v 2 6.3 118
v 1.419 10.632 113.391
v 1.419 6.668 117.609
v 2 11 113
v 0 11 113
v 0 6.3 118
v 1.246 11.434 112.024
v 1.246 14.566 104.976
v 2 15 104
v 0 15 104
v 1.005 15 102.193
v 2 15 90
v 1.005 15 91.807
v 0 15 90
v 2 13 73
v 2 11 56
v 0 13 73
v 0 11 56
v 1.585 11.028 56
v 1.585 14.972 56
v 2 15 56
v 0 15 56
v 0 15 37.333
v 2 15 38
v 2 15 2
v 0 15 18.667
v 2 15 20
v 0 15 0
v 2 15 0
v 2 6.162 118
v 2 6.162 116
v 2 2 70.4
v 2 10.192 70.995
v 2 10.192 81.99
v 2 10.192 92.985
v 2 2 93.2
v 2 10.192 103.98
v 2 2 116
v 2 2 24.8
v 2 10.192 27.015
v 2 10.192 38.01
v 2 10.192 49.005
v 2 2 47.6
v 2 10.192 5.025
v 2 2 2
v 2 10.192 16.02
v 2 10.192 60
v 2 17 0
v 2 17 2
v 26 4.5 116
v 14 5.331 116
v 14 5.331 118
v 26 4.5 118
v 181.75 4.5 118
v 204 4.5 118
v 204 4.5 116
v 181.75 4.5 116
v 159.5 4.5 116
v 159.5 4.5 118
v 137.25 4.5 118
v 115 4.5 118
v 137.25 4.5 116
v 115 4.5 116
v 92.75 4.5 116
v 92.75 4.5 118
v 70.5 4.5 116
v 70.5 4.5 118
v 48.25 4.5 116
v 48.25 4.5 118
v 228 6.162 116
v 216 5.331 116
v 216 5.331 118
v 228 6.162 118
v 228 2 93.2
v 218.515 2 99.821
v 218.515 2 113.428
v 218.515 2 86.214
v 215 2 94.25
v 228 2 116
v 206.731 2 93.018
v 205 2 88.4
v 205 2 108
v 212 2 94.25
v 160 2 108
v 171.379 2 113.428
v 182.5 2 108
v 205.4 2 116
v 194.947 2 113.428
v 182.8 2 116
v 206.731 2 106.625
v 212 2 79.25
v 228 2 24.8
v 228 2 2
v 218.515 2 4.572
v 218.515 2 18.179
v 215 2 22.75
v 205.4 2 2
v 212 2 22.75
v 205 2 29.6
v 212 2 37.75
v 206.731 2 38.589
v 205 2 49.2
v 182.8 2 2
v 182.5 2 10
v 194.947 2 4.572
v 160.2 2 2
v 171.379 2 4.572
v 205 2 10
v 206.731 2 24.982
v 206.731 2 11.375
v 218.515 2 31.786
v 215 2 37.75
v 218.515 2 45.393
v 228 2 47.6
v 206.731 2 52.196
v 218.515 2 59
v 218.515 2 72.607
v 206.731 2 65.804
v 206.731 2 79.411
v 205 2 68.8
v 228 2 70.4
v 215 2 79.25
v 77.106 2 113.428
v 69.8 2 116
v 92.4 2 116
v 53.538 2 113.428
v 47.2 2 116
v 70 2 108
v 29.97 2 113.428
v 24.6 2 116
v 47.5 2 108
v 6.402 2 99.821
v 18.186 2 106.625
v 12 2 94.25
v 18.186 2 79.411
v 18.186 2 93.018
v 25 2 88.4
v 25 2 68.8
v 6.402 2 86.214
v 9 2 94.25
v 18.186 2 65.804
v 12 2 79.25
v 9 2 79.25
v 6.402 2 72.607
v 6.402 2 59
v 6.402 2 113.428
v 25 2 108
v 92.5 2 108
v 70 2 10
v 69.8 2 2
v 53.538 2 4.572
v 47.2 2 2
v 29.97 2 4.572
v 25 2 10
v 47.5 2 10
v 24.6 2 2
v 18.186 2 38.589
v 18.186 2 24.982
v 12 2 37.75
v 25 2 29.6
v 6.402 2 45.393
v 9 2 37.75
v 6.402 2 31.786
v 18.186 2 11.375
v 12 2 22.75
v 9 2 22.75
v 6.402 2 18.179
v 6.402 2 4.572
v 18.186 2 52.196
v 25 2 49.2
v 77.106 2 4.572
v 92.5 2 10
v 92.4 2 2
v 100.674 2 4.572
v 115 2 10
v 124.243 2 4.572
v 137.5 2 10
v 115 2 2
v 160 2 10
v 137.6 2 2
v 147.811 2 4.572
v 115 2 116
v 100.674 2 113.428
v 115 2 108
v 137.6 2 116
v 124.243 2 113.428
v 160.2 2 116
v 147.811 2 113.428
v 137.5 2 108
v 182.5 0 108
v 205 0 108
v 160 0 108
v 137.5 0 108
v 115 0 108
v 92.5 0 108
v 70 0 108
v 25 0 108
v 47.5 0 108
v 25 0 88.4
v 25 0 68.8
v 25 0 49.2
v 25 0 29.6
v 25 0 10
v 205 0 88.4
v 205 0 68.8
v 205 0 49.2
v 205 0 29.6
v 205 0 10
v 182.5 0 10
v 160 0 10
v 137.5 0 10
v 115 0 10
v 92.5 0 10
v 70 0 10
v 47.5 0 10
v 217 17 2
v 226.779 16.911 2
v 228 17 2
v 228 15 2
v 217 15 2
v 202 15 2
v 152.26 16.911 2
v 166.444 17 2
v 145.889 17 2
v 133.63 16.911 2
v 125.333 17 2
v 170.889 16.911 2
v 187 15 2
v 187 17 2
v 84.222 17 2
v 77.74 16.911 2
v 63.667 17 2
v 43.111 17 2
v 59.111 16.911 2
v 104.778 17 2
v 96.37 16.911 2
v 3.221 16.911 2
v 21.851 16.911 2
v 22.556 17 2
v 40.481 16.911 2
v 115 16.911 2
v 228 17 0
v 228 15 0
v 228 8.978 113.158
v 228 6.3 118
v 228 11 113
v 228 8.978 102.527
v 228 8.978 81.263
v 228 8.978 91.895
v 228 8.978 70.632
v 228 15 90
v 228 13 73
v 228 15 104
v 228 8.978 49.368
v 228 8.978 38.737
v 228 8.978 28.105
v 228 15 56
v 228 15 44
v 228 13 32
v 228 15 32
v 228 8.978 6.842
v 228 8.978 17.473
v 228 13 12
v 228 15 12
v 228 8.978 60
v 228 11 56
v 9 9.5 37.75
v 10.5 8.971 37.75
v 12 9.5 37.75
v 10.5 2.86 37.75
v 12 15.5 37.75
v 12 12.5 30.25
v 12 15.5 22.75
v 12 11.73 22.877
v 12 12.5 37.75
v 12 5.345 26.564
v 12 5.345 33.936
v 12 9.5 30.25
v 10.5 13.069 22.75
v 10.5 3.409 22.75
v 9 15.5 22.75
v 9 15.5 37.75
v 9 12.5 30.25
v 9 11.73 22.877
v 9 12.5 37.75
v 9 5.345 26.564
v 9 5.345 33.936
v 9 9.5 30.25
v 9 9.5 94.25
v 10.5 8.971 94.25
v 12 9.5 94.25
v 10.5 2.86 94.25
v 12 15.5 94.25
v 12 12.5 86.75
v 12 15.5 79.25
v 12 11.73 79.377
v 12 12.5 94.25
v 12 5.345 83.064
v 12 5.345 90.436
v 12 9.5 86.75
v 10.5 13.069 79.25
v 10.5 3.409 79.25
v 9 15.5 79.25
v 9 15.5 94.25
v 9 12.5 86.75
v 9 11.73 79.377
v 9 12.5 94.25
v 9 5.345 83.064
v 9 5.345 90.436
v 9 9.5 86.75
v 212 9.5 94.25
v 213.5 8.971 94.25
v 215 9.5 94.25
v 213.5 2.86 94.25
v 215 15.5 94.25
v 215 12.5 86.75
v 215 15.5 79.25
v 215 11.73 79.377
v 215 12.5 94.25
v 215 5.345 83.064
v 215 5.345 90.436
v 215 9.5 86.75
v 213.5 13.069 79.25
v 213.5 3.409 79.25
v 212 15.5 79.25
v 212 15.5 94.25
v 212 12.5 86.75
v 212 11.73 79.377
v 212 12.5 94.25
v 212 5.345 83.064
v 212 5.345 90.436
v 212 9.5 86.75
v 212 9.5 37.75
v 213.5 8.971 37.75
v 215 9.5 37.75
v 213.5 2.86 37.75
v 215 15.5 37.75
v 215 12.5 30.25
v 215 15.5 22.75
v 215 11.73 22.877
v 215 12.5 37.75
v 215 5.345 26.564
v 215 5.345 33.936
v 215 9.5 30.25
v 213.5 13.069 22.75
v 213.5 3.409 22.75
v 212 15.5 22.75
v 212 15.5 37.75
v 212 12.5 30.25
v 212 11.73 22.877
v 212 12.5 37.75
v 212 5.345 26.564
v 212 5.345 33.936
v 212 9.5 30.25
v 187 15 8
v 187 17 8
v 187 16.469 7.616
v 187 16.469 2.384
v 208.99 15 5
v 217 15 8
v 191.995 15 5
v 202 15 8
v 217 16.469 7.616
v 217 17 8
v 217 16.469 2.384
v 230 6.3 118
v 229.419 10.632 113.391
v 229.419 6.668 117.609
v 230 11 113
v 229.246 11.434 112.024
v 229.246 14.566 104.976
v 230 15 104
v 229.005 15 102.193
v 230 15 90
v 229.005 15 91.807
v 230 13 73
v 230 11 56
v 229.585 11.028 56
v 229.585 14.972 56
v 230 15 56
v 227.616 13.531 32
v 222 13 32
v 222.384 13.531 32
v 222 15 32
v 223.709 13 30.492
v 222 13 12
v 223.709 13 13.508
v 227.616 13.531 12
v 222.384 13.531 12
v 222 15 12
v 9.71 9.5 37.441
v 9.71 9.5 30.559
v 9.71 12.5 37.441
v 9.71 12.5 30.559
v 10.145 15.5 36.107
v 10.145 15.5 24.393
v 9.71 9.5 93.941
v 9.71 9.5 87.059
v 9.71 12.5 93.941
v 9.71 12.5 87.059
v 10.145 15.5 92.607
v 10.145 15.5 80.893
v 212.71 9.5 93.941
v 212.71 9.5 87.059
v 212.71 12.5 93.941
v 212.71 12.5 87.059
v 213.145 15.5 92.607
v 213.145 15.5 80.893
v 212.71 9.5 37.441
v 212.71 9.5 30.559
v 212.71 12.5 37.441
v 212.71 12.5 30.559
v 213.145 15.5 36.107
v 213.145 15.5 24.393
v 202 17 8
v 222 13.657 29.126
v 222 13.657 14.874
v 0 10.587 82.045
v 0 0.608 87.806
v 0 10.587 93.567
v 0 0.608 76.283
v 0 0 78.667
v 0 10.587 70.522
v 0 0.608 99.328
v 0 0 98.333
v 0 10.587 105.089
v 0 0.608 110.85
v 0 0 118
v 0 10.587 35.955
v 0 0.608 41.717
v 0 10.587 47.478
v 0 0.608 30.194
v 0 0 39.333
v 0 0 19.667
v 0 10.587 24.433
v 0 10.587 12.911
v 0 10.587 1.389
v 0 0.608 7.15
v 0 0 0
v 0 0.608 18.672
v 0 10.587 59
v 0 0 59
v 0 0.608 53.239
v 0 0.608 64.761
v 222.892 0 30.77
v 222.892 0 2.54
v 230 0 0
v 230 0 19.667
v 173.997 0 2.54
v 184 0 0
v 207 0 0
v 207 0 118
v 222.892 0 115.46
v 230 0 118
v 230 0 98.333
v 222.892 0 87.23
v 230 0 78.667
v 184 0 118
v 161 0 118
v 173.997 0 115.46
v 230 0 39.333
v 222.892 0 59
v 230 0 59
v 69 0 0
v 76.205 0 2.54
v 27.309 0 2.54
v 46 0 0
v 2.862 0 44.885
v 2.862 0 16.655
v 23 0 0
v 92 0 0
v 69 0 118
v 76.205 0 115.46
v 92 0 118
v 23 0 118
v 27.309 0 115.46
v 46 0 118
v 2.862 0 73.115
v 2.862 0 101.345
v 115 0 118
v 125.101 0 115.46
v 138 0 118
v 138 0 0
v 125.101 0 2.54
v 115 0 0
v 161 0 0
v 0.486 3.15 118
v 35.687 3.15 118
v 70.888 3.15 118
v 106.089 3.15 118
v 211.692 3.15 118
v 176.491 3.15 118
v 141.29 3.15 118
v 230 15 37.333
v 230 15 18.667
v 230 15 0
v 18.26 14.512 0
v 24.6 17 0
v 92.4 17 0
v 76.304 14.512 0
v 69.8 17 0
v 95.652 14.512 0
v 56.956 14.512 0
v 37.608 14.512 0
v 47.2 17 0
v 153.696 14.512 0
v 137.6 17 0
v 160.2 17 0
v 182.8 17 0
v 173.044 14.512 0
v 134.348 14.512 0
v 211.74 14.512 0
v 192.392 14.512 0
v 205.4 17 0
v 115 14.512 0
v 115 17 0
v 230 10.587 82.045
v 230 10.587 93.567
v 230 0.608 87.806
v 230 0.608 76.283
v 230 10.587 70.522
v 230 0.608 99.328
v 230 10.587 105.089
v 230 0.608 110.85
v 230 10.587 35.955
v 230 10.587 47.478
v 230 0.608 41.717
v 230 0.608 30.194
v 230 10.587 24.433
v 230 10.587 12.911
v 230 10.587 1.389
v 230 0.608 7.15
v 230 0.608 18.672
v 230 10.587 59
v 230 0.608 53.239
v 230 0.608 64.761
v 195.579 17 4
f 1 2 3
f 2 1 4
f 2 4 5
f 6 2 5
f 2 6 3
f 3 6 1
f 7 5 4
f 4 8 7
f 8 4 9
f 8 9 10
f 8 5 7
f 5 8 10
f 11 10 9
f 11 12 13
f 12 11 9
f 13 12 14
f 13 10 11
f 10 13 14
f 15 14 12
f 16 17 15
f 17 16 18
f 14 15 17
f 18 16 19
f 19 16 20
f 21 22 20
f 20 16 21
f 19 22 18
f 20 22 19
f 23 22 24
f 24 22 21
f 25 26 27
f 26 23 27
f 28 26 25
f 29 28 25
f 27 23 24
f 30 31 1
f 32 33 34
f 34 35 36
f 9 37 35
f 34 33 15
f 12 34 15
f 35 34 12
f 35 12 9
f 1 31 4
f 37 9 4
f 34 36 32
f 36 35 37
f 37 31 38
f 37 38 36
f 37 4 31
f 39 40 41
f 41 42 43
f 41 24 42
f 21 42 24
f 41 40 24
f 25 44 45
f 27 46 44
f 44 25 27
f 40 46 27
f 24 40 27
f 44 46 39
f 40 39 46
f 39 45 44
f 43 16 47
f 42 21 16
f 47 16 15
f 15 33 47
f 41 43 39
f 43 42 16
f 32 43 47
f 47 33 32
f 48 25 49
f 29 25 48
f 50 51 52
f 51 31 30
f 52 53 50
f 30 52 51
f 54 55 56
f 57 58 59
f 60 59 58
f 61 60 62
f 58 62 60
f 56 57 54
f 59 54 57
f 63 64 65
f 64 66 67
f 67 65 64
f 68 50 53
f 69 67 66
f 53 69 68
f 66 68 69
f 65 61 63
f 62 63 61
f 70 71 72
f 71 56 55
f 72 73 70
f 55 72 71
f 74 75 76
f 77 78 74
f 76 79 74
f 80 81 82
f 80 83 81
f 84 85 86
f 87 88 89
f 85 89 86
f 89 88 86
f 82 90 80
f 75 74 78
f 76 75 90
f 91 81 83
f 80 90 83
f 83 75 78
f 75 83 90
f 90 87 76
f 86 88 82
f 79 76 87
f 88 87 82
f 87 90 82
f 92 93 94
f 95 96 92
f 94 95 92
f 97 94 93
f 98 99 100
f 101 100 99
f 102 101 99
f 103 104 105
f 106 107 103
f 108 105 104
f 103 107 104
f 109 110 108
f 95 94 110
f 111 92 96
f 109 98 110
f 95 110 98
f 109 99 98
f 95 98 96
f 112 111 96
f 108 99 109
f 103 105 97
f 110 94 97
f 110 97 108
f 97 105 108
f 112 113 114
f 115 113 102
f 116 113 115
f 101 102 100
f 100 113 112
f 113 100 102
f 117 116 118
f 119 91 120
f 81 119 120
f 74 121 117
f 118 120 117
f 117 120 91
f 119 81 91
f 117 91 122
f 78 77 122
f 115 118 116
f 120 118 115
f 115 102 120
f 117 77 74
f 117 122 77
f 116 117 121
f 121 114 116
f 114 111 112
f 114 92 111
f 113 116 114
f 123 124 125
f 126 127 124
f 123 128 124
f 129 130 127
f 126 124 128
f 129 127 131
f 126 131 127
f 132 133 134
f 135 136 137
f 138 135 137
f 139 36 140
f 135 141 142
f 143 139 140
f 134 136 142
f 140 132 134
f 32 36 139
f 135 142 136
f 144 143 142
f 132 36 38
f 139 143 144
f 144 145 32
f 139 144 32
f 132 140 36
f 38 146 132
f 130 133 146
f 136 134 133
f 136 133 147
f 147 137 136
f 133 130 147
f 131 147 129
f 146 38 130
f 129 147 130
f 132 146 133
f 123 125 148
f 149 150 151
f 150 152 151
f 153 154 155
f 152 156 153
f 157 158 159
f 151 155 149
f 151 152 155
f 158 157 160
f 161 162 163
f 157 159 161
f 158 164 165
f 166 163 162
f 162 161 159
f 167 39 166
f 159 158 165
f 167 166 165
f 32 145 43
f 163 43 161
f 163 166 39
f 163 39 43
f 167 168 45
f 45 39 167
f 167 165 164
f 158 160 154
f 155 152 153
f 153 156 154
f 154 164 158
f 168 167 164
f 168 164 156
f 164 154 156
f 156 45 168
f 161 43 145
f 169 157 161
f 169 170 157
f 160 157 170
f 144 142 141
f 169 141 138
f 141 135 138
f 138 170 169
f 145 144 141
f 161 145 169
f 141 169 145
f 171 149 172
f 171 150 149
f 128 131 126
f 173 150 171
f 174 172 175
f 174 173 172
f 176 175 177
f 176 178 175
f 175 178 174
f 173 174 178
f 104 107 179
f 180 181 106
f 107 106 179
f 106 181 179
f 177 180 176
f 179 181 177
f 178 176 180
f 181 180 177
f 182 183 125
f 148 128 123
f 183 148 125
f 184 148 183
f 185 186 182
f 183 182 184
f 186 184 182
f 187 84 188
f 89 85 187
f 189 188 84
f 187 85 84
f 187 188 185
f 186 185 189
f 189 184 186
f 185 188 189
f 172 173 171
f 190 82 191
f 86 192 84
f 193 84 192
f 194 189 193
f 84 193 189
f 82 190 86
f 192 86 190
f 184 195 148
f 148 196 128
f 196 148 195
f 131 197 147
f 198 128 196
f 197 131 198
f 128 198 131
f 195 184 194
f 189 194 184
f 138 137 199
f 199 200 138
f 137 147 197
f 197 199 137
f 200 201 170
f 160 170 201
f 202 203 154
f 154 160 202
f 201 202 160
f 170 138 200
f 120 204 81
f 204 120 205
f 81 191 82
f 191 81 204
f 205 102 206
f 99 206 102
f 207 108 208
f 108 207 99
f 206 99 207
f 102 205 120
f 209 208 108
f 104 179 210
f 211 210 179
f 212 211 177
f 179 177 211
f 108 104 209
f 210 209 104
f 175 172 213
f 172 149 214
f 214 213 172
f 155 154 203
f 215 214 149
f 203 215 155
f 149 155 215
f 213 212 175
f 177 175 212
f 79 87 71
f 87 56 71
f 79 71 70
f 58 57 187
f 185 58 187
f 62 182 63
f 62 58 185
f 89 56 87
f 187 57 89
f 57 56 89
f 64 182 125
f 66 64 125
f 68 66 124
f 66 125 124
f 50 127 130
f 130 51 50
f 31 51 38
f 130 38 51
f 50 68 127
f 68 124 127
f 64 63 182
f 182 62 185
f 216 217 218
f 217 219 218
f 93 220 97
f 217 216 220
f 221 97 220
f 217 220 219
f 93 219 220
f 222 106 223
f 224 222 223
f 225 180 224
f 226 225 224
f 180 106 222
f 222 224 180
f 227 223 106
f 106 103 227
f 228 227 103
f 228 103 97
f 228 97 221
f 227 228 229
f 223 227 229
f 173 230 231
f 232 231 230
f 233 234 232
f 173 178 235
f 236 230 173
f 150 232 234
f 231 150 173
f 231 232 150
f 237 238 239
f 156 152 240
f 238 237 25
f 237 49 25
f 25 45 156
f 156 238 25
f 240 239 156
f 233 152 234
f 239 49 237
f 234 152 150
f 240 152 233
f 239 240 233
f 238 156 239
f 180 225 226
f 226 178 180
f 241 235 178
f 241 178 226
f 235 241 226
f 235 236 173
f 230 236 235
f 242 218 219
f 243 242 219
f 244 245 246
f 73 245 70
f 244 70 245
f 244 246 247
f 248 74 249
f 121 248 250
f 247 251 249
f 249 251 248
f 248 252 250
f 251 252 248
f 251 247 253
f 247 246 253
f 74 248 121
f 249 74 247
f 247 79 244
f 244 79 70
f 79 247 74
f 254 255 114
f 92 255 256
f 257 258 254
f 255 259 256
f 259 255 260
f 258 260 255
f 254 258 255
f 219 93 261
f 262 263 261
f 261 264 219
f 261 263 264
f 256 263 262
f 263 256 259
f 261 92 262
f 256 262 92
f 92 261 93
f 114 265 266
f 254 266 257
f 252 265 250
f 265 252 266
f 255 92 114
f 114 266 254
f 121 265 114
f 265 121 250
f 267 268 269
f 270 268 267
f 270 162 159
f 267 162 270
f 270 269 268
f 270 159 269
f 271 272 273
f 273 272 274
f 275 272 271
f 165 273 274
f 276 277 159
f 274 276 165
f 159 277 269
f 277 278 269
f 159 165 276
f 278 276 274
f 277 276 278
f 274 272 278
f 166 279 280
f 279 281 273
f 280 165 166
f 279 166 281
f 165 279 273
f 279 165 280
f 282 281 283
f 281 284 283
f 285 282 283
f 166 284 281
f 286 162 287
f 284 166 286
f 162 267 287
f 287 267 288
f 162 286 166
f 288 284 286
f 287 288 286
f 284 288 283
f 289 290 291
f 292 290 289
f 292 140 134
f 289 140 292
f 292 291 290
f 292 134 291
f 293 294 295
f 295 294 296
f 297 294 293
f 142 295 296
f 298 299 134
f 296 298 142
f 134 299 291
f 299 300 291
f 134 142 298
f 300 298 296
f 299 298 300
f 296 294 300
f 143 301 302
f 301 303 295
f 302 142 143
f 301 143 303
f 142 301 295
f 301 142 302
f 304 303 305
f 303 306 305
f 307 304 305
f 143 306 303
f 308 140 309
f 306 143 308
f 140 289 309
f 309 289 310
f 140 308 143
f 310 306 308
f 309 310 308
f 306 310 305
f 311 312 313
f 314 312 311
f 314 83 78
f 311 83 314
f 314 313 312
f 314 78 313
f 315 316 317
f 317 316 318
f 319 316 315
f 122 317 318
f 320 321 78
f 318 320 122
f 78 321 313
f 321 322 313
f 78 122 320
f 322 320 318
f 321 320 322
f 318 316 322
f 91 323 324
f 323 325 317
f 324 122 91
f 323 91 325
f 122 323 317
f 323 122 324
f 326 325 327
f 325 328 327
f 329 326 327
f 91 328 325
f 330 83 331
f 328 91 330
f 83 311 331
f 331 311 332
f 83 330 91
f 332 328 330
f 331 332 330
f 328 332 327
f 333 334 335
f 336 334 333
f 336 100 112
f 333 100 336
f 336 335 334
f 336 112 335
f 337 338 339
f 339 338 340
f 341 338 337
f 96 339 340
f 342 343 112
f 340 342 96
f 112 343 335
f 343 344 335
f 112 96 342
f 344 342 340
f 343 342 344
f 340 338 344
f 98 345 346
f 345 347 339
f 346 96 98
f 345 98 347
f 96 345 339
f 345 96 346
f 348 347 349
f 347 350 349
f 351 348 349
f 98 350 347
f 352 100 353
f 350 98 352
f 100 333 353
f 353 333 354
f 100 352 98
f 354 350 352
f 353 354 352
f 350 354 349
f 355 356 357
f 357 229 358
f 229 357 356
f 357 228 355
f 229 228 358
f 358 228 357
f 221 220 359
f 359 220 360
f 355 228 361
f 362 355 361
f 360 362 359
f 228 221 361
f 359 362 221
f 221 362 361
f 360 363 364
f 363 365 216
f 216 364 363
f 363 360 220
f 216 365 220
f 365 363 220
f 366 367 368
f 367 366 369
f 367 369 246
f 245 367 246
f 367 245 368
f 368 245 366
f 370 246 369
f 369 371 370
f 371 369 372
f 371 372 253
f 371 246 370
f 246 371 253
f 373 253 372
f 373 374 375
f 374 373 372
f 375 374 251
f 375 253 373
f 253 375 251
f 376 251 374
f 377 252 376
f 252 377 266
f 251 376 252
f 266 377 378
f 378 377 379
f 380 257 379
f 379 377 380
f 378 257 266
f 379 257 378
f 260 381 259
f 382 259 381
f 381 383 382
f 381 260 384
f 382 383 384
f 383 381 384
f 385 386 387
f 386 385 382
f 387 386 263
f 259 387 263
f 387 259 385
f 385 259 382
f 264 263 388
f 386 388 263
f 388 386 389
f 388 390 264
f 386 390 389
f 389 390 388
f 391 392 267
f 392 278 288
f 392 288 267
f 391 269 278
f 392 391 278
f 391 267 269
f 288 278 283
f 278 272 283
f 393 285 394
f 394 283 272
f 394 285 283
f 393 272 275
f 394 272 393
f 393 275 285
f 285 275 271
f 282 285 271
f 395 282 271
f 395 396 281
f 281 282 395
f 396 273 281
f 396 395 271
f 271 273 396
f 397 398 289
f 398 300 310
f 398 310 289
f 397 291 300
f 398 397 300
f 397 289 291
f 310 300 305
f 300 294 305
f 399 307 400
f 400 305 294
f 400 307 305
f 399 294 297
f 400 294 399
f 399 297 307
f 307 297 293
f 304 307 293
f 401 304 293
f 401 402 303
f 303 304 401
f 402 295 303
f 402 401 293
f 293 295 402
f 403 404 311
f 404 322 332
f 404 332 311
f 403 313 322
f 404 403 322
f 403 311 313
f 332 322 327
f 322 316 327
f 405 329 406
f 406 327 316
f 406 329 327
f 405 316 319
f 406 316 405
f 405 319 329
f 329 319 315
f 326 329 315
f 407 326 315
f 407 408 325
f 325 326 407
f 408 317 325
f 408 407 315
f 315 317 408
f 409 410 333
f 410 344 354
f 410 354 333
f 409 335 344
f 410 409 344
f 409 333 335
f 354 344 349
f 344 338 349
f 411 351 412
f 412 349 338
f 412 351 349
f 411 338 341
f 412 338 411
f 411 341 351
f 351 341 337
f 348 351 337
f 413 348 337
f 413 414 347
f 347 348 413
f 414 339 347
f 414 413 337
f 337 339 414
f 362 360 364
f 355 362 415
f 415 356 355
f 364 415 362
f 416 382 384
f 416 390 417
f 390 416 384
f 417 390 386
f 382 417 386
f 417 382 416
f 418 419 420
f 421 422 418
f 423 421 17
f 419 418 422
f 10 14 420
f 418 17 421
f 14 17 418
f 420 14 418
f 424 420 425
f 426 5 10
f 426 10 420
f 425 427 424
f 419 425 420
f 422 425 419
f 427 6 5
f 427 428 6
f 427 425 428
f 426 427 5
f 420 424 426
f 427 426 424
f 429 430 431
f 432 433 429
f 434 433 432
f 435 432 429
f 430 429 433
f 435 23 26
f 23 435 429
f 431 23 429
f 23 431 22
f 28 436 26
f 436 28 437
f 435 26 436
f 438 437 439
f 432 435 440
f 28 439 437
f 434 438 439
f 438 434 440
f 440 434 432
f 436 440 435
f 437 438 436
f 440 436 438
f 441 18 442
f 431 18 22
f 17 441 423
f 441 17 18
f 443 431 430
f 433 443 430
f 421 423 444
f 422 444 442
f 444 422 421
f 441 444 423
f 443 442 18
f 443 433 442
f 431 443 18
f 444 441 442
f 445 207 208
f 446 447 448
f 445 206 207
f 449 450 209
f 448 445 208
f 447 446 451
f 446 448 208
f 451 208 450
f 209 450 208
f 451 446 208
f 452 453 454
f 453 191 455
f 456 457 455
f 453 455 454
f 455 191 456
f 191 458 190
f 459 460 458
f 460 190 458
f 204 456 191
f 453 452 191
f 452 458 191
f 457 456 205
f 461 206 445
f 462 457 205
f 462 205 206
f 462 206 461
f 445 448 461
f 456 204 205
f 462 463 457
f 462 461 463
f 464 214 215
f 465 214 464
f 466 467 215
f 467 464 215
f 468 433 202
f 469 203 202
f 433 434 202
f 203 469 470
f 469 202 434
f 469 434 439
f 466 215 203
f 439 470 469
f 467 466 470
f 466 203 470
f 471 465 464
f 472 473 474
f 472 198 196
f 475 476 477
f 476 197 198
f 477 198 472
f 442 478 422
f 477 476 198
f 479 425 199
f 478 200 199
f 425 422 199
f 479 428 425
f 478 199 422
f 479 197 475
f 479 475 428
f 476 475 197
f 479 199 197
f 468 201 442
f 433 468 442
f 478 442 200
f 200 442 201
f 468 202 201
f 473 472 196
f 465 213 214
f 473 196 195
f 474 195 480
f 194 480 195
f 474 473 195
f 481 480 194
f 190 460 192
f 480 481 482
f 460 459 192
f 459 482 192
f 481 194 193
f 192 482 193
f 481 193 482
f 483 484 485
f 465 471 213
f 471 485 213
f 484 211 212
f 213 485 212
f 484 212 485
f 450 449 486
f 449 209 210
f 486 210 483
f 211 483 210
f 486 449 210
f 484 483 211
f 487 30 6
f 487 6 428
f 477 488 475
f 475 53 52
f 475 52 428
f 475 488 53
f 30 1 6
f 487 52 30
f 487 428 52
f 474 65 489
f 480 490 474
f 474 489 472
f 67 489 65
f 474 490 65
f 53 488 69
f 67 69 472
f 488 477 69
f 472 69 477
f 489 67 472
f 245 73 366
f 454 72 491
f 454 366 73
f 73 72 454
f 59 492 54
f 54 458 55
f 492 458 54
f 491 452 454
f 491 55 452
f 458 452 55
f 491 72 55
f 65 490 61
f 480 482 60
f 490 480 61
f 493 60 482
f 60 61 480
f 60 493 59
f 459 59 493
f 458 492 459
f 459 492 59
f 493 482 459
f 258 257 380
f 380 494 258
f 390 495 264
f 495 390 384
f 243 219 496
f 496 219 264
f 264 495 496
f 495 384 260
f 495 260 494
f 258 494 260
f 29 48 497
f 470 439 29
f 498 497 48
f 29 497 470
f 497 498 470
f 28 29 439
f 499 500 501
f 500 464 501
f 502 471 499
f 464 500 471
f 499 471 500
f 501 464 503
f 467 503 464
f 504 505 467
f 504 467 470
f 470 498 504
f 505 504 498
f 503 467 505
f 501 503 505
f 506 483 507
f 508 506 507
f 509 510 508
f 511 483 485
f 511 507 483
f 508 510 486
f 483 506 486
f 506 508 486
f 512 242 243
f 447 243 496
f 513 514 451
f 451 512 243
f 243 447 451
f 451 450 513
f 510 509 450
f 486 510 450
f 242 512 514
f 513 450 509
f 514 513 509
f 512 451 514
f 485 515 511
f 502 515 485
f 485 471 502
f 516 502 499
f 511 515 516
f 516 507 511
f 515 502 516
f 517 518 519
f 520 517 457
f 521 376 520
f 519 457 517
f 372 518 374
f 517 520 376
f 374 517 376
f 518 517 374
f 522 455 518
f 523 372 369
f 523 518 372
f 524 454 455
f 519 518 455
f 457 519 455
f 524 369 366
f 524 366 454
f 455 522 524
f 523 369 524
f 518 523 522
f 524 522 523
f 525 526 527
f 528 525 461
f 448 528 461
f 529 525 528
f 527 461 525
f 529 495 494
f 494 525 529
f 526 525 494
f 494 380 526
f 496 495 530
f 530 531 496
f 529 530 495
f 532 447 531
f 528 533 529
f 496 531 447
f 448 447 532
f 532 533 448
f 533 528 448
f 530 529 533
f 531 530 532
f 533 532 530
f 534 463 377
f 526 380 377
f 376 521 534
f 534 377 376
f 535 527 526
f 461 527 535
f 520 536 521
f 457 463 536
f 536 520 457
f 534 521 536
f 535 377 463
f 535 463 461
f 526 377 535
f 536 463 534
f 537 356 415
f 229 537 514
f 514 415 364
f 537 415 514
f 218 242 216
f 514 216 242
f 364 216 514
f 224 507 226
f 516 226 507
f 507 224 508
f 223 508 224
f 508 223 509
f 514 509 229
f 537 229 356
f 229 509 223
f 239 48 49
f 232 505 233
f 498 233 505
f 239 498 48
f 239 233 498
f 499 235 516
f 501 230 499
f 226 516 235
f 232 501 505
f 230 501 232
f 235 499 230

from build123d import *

# Parameters (mm, degrees)
EXTRUDE_DEPTH    = 2
EXTRUDE001_DEPTH = 2
EXTRUDE002_DEPTH = 2
BOX009_W         = 226
BOX009_H         = 17
BOX009_DEPTH     = 2
BOX015_W         = 10
BOX015_H         = 3
BOX015_DEPTH     = 10
BOX010_W         = 3
BOX010_H         = 13.5
BOX010_DEPTH     = 15
BOX022_W         = 30
BOX022_H         = 2
BOX022_DEPTH     = 6
BOX023_W         = 6
BOX023_H         = 2
BOX023_DEPTH     = 20
BOX001_W         = 180
BOX001_H         = 34
BOX001_DEPTH     = 98
BOX_W            = 226
BOX_H            = 2
BOX_DEPTH        = 118


with BuildPart() as top_thin_beam:
    # Sketch (on Sketch) → Extrude (new body)
    with BuildSketch(Plane.XY):
        Polygon((0, 0), (0, 6.3), (26, 4.5), (204, 4.5), (230, 6.3), (230, 0), align=None)
    extrude(amount=EXTRUDE_DEPTH)


with BuildPart() as top_thin_beam_1:
    # Extrude placement: moved
    add(top_thin_beam.part.moved(Location((0, 0, 116))))


with BuildPart() as rightverticalcontour:
    # Sketch001 → Extrude001 (new body)
    with BuildSketch(Plane.YZ):
        Polygon((0, 0), (15, 0), (15, 56), (11, 56), (15, 90), (15, 104), (11, 113), (6.3, 118), (0, 118), align=None)
    extrude(amount=EXTRUDE001_DEPTH)


with BuildPart() as rightverticalcontour_1:
    # Extrude001 placement: moved
    add(rightverticalcontour.part.moved(Location((228, 0, 0))))


with BuildPart() as lefttverticalcontour:
    # Sketch002 → Extrude002 (new body)
    with BuildSketch(Plane.YZ):
        Polygon((0, 0), (15, 0), (15, 56), (11, 56), (15, 90), (15, 104), (11, 113), (6.3, 118), (0, 118), align=None)
    extrude(amount=EXTRUDE002_DEPTH)


with BuildPart() as bottom:
    # Box009 → Box009 (new body)
    with BuildSketch(Plane(origin=(2, 0, 0), x_dir=(1, 0, 0), z_dir=(0, 0, 1))):
        with Locations((113, 8.5)):
            Rectangle(BOX009_W, BOX009_H)
    extrude(amount=BOX009_DEPTH)


with BuildPart() as slot:
    # Box015 → Box015 (new body)
    with BuildSketch(Plane(origin=(-3.5, 7.5, 7.5), x_dir=(1, 0, 0), z_dir=(0, 0, 1))):
        with Locations((5, 1.5)):
            Rectangle(BOX015_W, BOX015_H)
    extrude(amount=BOX015_DEPTH)


with BuildPart() as base:
    # Box010 → Box010 (new body)
    with BuildSketch(Plane.XY):
        with Locations((1.5, 6.75)):
            Rectangle(BOX010_W, BOX010_H)
    extrude(amount=BOX010_DEPTH)


with BuildPart() as topleftbacksupport:
    # Cut001 base: copy of base
    add(base.part)

    # Cut001: cut slot
    add(slot.part, mode=Mode.SUBTRACT)


with BuildPart() as topleftbacksupport_1:
    # Cut001 placement: moved
    add(topleftbacksupport.part.moved(Location((9, 2, 79.25))))


with BuildPart() as bottomleftbacksupport:
    # Cut002 base: copy of base
    add(base.part)

    # Cut002: cut slot
    add(slot.part, mode=Mode.SUBTRACT)


with BuildPart() as bottomleftbacksupport_1:
    # Cut002 placement: moved
    add(bottomleftbacksupport.part.moved(Location((9, 2, 22.75))))


with BuildPart() as bottomrightbacksupport:
    # Cut003 base: copy of base
    add(base.part)

    # Cut003: cut slot
    add(slot.part, mode=Mode.SUBTRACT)


with BuildPart() as bottomrightbacksupport_1:
    # Cut003 placement: moved
    add(bottomrightbacksupport.part.moved(Location((212, 2, 22.75))))


with BuildPart() as toprightbacksupport:
    # Cut004 base: copy of base
    add(base.part)

    # Cut004: cut slot
    add(slot.part, mode=Mode.SUBTRACT)


with BuildPart() as toprightbacksupport_1:
    # Cut004 placement: moved
    add(toprightbacksupport.part.moved(Location((212, 2, 79.25))))


with BuildPart() as bottomcableguard:
    # Box022 → Box022 (new body)
    with BuildSketch(Plane(origin=(187, 15, 2), x_dir=(1, 0, 0), z_dir=(0, 0, 1))):
        with Locations((15, 1)):
            Rectangle(BOX022_W, BOX022_H)
    extrude(amount=BOX022_DEPTH)


with BuildPart() as sidecableguard:
    # Box023 → Box023 (new body)
    with BuildSketch(Plane(origin=(222, 13, 12), x_dir=(1, 0, 0), z_dir=(0, 0, 1))):
        with Locations((3, 1)):
            Rectangle(BOX023_W, BOX023_H)
    extrude(amount=BOX023_DEPTH)


with BuildPart() as cube001:
    # Box001 → Box001 (new body)
    with BuildSketch(Plane(origin=(25, -17, 10), x_dir=(1, 0, 0), z_dir=(0, 0, 1))):
        with Locations((90, 17)):
            Rectangle(BOX001_W, BOX001_H)
    extrude(amount=BOX001_DEPTH)


with BuildPart() as fusion:
    # Box → Box (new body)
    with BuildSketch(Plane(origin=(2, 0, 0), x_dir=(1, 0, 0), z_dir=(0, 0, 1))):
        with Locations((113, 1)):
            Rectangle(BOX_W, BOX_H)
    extrude(amount=BOX_DEPTH)

    # Cut: cut Cube001
    add(cube001.part, mode=Mode.SUBTRACT)

    # Fusion: union Top Thin Beam, RightVerticalContour, LefttVerticalContour, Bottom, TopLeftBackSupport, BottomLeftBackSupport, BottomRightBackSupport, TopRightBackSupport, BottomCableGuard, SideCableGuard
    add(top_thin_beam_1.part)
    add(rightverticalcontour_1.part)
    add(lefttverticalcontour.part)
    add(bottom.part)
    add(topleftbacksupport_1.part)
    add(bottomleftbacksupport_1.part)
    add(bottomrightbacksupport_1.part)
    add(toprightbacksupport_1.part)
    add(bottomcableguard.part)
    add(sidecableguard.part)


solid = fusion.part
